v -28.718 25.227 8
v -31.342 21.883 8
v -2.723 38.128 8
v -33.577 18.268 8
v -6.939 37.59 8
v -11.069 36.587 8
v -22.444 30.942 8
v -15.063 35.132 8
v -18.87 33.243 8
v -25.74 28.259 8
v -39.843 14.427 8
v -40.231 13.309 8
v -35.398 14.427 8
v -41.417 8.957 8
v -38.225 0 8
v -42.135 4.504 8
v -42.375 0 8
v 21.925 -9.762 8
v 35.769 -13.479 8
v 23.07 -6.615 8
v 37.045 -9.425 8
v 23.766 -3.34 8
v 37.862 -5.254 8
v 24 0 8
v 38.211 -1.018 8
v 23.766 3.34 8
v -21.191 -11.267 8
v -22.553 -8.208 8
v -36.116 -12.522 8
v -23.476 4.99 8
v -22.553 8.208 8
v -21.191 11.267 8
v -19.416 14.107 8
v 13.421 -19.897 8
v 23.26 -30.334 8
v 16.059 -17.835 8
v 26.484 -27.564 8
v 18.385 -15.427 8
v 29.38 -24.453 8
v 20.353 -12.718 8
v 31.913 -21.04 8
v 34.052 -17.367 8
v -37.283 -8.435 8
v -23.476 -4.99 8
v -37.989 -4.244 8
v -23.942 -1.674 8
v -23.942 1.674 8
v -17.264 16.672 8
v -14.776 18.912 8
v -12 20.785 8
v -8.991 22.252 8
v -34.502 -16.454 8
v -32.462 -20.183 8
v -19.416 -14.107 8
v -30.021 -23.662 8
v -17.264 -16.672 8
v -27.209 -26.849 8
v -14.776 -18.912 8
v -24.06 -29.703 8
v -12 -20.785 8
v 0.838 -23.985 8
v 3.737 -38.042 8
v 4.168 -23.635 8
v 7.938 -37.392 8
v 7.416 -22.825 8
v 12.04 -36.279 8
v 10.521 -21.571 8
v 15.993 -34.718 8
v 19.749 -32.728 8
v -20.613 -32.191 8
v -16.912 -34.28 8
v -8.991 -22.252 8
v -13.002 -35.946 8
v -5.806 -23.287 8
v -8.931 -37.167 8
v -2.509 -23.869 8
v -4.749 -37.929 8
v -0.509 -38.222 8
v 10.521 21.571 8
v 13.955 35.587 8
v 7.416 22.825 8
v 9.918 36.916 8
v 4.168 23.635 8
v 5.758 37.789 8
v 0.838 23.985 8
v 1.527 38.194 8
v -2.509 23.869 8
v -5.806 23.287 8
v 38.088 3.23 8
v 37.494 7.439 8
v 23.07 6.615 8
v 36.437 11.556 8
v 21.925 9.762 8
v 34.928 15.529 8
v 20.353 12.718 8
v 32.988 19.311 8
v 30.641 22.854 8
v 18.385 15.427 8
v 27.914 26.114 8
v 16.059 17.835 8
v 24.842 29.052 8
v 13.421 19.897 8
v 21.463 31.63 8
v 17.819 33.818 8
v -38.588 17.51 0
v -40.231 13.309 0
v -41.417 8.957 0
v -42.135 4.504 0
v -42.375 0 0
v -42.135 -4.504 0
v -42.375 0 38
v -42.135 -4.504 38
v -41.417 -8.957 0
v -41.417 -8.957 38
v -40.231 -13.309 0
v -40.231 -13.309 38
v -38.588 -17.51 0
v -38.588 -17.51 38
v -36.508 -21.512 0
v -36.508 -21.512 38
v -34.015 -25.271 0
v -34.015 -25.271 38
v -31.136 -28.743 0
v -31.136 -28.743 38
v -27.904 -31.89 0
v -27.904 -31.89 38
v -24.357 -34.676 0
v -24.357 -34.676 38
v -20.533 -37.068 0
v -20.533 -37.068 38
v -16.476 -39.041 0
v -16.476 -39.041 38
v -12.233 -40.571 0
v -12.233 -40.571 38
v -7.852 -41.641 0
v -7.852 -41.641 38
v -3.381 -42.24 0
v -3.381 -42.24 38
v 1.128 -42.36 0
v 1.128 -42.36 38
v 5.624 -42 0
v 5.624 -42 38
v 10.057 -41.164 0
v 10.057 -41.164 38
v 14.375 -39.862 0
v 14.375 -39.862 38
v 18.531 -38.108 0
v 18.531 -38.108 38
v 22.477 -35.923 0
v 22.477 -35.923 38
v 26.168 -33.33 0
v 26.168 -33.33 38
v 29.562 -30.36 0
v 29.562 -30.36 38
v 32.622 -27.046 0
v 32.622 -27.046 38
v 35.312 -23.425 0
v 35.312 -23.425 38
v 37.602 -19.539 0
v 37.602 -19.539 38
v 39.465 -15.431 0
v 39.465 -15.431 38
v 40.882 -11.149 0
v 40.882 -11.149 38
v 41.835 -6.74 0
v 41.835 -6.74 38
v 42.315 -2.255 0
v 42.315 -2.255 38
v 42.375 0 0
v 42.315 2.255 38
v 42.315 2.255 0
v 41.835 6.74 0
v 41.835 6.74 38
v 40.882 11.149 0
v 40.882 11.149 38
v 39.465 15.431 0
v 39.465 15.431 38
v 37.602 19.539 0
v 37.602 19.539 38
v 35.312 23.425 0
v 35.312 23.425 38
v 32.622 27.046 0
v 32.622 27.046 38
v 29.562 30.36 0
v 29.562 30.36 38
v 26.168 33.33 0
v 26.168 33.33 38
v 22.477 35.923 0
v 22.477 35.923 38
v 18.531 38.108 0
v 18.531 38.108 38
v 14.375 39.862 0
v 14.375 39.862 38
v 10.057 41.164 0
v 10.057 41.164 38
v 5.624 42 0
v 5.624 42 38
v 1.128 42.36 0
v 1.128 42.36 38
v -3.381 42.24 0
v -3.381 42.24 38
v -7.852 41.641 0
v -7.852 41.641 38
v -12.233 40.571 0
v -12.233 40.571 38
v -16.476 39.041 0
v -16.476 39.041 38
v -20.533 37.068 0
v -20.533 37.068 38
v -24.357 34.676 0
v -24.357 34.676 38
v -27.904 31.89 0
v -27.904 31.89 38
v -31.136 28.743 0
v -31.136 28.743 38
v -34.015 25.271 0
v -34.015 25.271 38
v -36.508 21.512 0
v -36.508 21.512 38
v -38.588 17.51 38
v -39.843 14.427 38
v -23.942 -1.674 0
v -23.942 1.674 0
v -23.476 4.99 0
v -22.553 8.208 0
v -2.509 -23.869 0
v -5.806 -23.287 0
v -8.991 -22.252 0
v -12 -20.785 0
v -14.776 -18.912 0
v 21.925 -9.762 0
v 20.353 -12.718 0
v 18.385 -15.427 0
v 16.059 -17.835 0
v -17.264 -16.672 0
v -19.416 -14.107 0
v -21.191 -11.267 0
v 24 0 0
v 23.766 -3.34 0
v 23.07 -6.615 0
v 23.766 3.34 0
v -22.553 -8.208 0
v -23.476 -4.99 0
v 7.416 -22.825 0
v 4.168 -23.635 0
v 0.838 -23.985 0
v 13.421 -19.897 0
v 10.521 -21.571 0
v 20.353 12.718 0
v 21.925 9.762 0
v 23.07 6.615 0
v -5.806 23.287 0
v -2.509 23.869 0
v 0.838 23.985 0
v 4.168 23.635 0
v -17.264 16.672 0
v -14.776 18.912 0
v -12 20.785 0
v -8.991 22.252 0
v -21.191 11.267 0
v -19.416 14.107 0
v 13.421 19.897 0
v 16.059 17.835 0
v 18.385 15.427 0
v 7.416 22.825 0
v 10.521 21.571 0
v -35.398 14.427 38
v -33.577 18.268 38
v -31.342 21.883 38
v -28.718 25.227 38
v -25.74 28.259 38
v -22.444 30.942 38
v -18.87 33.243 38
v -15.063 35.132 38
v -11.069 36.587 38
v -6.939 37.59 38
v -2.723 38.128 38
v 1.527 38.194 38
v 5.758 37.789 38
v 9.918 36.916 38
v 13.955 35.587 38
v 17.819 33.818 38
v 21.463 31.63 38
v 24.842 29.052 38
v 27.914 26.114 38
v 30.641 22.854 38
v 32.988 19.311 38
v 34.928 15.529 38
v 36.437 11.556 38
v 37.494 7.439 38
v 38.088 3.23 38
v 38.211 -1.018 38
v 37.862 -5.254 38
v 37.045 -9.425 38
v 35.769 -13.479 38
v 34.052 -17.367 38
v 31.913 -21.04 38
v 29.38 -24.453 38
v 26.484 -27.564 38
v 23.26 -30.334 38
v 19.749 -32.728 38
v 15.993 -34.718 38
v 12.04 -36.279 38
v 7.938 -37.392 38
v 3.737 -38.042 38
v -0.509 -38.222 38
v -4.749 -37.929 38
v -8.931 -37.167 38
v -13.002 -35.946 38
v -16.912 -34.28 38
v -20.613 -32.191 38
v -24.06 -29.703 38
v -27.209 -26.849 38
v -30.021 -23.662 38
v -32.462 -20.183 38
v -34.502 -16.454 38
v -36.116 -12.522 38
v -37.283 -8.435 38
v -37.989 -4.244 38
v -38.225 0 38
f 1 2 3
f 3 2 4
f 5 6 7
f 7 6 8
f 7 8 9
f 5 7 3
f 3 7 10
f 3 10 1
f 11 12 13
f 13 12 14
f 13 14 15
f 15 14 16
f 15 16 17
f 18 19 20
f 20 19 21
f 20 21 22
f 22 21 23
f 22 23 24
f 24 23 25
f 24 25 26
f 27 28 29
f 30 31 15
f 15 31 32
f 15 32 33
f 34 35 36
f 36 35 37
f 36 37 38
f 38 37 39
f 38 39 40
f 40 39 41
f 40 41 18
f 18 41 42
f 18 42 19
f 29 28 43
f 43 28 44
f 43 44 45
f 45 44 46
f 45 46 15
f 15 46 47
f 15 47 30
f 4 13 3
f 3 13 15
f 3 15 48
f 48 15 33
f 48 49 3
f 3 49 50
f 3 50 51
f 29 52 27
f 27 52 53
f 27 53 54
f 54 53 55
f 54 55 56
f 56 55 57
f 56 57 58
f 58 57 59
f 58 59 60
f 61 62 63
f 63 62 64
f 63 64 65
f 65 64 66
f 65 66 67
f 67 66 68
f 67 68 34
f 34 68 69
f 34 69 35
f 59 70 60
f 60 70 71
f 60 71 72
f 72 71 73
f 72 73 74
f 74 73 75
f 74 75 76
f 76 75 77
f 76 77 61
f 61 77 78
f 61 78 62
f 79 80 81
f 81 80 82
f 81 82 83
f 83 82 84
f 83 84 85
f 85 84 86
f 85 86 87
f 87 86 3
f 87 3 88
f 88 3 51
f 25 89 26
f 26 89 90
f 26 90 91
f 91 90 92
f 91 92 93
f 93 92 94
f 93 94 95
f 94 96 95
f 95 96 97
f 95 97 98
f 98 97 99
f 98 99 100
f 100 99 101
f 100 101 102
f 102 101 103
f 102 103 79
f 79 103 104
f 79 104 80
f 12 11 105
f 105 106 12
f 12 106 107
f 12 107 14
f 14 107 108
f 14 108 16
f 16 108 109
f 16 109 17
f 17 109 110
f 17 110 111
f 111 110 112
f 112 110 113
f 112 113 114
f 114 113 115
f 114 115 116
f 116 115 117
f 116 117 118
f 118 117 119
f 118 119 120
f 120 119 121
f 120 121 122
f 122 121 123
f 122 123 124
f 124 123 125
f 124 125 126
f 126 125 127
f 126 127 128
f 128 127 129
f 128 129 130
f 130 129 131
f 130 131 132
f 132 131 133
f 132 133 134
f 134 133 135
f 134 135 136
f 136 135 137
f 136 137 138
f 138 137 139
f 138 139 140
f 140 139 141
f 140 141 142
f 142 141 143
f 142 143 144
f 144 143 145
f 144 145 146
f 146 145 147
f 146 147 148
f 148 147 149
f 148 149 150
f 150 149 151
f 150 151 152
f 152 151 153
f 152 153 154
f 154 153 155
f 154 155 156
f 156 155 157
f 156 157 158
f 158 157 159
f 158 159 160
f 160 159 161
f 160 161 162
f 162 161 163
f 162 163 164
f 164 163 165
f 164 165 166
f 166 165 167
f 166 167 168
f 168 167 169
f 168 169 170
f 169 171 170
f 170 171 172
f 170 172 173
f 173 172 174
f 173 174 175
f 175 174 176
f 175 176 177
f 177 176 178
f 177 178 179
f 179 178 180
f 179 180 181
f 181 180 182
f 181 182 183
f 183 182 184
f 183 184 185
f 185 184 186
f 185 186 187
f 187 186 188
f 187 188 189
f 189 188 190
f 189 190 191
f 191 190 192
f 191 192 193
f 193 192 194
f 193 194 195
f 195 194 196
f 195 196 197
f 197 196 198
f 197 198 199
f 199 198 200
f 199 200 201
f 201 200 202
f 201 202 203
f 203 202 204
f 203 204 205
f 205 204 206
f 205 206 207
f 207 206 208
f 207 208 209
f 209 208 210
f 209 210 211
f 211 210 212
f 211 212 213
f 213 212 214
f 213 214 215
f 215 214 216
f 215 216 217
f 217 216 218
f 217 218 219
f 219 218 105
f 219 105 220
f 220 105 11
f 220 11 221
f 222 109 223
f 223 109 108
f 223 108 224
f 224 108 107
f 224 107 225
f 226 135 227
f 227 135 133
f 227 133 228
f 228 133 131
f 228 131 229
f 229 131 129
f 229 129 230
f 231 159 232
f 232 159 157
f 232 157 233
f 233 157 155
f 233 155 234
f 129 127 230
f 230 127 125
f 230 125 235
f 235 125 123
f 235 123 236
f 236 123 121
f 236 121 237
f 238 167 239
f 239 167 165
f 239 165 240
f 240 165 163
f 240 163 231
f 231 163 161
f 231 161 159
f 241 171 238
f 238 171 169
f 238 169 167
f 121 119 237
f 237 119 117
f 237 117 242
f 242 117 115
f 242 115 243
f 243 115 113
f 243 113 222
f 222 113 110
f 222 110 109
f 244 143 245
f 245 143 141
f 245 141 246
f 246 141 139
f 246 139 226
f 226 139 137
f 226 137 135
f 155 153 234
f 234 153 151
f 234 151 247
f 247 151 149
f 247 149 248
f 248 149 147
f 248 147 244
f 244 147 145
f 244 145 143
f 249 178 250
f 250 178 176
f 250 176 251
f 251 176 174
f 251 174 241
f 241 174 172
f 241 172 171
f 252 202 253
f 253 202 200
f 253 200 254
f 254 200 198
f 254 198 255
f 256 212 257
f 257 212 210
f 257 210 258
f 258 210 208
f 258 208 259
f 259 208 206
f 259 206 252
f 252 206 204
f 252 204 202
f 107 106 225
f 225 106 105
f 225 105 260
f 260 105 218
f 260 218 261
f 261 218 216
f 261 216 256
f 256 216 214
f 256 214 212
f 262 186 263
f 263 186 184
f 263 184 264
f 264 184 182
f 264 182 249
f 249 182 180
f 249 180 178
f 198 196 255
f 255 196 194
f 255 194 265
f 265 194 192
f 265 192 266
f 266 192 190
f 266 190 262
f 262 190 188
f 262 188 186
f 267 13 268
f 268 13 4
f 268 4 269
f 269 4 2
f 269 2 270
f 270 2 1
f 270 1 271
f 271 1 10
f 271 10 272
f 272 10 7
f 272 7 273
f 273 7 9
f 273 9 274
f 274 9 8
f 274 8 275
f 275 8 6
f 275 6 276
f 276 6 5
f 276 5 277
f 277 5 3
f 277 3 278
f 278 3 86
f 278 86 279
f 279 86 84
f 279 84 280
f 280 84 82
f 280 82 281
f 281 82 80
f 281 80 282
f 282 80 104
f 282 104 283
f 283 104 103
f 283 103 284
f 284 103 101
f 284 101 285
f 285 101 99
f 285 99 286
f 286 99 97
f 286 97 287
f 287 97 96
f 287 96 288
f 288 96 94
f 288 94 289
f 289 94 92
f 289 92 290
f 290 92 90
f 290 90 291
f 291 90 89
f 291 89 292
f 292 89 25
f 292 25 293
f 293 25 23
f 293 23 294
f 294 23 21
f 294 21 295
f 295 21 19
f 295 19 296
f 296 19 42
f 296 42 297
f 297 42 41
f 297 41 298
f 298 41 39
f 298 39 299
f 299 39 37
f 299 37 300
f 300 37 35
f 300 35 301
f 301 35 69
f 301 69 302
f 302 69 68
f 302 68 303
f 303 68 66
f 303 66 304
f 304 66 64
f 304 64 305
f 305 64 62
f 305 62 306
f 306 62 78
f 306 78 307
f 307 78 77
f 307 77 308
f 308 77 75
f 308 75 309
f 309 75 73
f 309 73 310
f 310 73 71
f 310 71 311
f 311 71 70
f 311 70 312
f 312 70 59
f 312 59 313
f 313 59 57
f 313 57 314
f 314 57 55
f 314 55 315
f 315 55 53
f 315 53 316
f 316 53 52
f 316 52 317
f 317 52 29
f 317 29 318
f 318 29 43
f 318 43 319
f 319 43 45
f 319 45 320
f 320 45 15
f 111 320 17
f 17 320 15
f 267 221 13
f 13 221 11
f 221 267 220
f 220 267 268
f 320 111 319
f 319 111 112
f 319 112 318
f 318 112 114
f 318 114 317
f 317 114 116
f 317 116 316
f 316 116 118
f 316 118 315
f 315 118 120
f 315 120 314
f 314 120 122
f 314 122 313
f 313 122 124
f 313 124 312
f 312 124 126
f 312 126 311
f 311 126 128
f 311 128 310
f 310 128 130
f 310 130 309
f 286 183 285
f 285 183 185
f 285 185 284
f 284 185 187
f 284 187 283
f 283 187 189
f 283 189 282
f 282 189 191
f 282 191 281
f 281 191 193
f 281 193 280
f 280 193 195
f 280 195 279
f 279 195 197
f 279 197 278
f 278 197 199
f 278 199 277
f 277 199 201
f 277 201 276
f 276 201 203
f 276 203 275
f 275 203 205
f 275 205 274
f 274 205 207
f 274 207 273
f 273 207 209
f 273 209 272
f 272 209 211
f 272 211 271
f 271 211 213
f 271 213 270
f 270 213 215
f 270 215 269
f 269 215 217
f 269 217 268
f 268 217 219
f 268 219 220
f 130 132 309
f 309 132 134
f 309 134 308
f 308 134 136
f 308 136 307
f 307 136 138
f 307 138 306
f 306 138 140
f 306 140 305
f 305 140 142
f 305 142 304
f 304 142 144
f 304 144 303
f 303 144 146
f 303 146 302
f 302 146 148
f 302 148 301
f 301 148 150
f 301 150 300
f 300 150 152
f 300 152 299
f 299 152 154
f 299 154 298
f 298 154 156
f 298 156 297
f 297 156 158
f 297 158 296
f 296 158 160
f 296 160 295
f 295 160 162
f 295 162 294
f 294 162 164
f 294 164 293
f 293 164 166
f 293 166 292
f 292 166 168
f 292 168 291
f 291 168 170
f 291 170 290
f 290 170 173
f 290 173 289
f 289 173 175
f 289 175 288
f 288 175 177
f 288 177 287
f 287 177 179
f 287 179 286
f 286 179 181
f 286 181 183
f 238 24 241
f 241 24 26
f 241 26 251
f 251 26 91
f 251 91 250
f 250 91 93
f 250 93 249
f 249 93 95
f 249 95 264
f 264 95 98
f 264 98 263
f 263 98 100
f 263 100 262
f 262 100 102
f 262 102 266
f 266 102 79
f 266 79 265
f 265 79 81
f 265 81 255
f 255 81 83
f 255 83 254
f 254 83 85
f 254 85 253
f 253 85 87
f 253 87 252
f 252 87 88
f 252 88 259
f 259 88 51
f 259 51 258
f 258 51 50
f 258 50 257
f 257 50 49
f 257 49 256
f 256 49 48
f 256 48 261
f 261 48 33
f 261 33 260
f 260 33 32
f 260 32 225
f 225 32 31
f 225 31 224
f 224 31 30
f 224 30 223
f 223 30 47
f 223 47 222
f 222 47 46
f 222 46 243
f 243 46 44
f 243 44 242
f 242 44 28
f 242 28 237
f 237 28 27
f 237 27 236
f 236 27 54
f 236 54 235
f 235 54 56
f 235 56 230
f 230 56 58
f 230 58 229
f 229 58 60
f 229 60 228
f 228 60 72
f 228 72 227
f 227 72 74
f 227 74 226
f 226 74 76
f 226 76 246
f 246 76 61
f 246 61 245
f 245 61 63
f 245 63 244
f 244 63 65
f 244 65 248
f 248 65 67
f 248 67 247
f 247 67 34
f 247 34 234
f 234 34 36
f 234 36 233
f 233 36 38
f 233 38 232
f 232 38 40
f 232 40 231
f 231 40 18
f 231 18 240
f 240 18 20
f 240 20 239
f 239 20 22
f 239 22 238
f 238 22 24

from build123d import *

# Parameters (mm, degrees)
SKETCH1_R           = 42.375
BOSS_EXTRUDE1_DEPTH = 8
BOSS_EXTRUDE2_DEPTH = 30
SKETCH4_R           = 24
CUT_EXTRUDE1_DEPTH  = 20


with BuildPart() as part:
    # Sketch1 → Boss-Extrude1 (new body)
    with BuildSketch(Plane.XY):
        Circle(SKETCH1_R)
    extrude(amount=BOSS_EXTRUDE1_DEPTH)

    # Sketch2 → Boss-Extrude2 (add)
    with BuildSketch(Plane.XY.offset(8)):
        with BuildLine():
            ThreePointArc((38.225, 0), (0, -38.225), (-38.225, 0))
            Line((-38.225, 0), (-42.375, 0))
            ThreePointArc((-42.375, 0), (0, -42.375), (42.375, 0))
            ThreePointArc((42.375, 0), (7.323876107, 41.737291045), (-39.843358172, 14.42731557))
            Line((-39.843358172, 14.42731557), (-35.397785106, 14.42731557))
            ThreePointArc((-35.397785106, 14.42731557), (7.35086013, 37.511537963), (38.225, 0))
        make_face()
    extrude(amount=BOSS_EXTRUDE2_DEPTH)

    # Sketch4 → Cut-Extrude1 (cut)
    with BuildSketch(Plane.XY.offset(8)):
        Circle(SKETCH4_R)
    extrude(amount=-CUT_EXTRUDE1_DEPTH, mode=Mode.SUBTRACT)


solid = part.part
